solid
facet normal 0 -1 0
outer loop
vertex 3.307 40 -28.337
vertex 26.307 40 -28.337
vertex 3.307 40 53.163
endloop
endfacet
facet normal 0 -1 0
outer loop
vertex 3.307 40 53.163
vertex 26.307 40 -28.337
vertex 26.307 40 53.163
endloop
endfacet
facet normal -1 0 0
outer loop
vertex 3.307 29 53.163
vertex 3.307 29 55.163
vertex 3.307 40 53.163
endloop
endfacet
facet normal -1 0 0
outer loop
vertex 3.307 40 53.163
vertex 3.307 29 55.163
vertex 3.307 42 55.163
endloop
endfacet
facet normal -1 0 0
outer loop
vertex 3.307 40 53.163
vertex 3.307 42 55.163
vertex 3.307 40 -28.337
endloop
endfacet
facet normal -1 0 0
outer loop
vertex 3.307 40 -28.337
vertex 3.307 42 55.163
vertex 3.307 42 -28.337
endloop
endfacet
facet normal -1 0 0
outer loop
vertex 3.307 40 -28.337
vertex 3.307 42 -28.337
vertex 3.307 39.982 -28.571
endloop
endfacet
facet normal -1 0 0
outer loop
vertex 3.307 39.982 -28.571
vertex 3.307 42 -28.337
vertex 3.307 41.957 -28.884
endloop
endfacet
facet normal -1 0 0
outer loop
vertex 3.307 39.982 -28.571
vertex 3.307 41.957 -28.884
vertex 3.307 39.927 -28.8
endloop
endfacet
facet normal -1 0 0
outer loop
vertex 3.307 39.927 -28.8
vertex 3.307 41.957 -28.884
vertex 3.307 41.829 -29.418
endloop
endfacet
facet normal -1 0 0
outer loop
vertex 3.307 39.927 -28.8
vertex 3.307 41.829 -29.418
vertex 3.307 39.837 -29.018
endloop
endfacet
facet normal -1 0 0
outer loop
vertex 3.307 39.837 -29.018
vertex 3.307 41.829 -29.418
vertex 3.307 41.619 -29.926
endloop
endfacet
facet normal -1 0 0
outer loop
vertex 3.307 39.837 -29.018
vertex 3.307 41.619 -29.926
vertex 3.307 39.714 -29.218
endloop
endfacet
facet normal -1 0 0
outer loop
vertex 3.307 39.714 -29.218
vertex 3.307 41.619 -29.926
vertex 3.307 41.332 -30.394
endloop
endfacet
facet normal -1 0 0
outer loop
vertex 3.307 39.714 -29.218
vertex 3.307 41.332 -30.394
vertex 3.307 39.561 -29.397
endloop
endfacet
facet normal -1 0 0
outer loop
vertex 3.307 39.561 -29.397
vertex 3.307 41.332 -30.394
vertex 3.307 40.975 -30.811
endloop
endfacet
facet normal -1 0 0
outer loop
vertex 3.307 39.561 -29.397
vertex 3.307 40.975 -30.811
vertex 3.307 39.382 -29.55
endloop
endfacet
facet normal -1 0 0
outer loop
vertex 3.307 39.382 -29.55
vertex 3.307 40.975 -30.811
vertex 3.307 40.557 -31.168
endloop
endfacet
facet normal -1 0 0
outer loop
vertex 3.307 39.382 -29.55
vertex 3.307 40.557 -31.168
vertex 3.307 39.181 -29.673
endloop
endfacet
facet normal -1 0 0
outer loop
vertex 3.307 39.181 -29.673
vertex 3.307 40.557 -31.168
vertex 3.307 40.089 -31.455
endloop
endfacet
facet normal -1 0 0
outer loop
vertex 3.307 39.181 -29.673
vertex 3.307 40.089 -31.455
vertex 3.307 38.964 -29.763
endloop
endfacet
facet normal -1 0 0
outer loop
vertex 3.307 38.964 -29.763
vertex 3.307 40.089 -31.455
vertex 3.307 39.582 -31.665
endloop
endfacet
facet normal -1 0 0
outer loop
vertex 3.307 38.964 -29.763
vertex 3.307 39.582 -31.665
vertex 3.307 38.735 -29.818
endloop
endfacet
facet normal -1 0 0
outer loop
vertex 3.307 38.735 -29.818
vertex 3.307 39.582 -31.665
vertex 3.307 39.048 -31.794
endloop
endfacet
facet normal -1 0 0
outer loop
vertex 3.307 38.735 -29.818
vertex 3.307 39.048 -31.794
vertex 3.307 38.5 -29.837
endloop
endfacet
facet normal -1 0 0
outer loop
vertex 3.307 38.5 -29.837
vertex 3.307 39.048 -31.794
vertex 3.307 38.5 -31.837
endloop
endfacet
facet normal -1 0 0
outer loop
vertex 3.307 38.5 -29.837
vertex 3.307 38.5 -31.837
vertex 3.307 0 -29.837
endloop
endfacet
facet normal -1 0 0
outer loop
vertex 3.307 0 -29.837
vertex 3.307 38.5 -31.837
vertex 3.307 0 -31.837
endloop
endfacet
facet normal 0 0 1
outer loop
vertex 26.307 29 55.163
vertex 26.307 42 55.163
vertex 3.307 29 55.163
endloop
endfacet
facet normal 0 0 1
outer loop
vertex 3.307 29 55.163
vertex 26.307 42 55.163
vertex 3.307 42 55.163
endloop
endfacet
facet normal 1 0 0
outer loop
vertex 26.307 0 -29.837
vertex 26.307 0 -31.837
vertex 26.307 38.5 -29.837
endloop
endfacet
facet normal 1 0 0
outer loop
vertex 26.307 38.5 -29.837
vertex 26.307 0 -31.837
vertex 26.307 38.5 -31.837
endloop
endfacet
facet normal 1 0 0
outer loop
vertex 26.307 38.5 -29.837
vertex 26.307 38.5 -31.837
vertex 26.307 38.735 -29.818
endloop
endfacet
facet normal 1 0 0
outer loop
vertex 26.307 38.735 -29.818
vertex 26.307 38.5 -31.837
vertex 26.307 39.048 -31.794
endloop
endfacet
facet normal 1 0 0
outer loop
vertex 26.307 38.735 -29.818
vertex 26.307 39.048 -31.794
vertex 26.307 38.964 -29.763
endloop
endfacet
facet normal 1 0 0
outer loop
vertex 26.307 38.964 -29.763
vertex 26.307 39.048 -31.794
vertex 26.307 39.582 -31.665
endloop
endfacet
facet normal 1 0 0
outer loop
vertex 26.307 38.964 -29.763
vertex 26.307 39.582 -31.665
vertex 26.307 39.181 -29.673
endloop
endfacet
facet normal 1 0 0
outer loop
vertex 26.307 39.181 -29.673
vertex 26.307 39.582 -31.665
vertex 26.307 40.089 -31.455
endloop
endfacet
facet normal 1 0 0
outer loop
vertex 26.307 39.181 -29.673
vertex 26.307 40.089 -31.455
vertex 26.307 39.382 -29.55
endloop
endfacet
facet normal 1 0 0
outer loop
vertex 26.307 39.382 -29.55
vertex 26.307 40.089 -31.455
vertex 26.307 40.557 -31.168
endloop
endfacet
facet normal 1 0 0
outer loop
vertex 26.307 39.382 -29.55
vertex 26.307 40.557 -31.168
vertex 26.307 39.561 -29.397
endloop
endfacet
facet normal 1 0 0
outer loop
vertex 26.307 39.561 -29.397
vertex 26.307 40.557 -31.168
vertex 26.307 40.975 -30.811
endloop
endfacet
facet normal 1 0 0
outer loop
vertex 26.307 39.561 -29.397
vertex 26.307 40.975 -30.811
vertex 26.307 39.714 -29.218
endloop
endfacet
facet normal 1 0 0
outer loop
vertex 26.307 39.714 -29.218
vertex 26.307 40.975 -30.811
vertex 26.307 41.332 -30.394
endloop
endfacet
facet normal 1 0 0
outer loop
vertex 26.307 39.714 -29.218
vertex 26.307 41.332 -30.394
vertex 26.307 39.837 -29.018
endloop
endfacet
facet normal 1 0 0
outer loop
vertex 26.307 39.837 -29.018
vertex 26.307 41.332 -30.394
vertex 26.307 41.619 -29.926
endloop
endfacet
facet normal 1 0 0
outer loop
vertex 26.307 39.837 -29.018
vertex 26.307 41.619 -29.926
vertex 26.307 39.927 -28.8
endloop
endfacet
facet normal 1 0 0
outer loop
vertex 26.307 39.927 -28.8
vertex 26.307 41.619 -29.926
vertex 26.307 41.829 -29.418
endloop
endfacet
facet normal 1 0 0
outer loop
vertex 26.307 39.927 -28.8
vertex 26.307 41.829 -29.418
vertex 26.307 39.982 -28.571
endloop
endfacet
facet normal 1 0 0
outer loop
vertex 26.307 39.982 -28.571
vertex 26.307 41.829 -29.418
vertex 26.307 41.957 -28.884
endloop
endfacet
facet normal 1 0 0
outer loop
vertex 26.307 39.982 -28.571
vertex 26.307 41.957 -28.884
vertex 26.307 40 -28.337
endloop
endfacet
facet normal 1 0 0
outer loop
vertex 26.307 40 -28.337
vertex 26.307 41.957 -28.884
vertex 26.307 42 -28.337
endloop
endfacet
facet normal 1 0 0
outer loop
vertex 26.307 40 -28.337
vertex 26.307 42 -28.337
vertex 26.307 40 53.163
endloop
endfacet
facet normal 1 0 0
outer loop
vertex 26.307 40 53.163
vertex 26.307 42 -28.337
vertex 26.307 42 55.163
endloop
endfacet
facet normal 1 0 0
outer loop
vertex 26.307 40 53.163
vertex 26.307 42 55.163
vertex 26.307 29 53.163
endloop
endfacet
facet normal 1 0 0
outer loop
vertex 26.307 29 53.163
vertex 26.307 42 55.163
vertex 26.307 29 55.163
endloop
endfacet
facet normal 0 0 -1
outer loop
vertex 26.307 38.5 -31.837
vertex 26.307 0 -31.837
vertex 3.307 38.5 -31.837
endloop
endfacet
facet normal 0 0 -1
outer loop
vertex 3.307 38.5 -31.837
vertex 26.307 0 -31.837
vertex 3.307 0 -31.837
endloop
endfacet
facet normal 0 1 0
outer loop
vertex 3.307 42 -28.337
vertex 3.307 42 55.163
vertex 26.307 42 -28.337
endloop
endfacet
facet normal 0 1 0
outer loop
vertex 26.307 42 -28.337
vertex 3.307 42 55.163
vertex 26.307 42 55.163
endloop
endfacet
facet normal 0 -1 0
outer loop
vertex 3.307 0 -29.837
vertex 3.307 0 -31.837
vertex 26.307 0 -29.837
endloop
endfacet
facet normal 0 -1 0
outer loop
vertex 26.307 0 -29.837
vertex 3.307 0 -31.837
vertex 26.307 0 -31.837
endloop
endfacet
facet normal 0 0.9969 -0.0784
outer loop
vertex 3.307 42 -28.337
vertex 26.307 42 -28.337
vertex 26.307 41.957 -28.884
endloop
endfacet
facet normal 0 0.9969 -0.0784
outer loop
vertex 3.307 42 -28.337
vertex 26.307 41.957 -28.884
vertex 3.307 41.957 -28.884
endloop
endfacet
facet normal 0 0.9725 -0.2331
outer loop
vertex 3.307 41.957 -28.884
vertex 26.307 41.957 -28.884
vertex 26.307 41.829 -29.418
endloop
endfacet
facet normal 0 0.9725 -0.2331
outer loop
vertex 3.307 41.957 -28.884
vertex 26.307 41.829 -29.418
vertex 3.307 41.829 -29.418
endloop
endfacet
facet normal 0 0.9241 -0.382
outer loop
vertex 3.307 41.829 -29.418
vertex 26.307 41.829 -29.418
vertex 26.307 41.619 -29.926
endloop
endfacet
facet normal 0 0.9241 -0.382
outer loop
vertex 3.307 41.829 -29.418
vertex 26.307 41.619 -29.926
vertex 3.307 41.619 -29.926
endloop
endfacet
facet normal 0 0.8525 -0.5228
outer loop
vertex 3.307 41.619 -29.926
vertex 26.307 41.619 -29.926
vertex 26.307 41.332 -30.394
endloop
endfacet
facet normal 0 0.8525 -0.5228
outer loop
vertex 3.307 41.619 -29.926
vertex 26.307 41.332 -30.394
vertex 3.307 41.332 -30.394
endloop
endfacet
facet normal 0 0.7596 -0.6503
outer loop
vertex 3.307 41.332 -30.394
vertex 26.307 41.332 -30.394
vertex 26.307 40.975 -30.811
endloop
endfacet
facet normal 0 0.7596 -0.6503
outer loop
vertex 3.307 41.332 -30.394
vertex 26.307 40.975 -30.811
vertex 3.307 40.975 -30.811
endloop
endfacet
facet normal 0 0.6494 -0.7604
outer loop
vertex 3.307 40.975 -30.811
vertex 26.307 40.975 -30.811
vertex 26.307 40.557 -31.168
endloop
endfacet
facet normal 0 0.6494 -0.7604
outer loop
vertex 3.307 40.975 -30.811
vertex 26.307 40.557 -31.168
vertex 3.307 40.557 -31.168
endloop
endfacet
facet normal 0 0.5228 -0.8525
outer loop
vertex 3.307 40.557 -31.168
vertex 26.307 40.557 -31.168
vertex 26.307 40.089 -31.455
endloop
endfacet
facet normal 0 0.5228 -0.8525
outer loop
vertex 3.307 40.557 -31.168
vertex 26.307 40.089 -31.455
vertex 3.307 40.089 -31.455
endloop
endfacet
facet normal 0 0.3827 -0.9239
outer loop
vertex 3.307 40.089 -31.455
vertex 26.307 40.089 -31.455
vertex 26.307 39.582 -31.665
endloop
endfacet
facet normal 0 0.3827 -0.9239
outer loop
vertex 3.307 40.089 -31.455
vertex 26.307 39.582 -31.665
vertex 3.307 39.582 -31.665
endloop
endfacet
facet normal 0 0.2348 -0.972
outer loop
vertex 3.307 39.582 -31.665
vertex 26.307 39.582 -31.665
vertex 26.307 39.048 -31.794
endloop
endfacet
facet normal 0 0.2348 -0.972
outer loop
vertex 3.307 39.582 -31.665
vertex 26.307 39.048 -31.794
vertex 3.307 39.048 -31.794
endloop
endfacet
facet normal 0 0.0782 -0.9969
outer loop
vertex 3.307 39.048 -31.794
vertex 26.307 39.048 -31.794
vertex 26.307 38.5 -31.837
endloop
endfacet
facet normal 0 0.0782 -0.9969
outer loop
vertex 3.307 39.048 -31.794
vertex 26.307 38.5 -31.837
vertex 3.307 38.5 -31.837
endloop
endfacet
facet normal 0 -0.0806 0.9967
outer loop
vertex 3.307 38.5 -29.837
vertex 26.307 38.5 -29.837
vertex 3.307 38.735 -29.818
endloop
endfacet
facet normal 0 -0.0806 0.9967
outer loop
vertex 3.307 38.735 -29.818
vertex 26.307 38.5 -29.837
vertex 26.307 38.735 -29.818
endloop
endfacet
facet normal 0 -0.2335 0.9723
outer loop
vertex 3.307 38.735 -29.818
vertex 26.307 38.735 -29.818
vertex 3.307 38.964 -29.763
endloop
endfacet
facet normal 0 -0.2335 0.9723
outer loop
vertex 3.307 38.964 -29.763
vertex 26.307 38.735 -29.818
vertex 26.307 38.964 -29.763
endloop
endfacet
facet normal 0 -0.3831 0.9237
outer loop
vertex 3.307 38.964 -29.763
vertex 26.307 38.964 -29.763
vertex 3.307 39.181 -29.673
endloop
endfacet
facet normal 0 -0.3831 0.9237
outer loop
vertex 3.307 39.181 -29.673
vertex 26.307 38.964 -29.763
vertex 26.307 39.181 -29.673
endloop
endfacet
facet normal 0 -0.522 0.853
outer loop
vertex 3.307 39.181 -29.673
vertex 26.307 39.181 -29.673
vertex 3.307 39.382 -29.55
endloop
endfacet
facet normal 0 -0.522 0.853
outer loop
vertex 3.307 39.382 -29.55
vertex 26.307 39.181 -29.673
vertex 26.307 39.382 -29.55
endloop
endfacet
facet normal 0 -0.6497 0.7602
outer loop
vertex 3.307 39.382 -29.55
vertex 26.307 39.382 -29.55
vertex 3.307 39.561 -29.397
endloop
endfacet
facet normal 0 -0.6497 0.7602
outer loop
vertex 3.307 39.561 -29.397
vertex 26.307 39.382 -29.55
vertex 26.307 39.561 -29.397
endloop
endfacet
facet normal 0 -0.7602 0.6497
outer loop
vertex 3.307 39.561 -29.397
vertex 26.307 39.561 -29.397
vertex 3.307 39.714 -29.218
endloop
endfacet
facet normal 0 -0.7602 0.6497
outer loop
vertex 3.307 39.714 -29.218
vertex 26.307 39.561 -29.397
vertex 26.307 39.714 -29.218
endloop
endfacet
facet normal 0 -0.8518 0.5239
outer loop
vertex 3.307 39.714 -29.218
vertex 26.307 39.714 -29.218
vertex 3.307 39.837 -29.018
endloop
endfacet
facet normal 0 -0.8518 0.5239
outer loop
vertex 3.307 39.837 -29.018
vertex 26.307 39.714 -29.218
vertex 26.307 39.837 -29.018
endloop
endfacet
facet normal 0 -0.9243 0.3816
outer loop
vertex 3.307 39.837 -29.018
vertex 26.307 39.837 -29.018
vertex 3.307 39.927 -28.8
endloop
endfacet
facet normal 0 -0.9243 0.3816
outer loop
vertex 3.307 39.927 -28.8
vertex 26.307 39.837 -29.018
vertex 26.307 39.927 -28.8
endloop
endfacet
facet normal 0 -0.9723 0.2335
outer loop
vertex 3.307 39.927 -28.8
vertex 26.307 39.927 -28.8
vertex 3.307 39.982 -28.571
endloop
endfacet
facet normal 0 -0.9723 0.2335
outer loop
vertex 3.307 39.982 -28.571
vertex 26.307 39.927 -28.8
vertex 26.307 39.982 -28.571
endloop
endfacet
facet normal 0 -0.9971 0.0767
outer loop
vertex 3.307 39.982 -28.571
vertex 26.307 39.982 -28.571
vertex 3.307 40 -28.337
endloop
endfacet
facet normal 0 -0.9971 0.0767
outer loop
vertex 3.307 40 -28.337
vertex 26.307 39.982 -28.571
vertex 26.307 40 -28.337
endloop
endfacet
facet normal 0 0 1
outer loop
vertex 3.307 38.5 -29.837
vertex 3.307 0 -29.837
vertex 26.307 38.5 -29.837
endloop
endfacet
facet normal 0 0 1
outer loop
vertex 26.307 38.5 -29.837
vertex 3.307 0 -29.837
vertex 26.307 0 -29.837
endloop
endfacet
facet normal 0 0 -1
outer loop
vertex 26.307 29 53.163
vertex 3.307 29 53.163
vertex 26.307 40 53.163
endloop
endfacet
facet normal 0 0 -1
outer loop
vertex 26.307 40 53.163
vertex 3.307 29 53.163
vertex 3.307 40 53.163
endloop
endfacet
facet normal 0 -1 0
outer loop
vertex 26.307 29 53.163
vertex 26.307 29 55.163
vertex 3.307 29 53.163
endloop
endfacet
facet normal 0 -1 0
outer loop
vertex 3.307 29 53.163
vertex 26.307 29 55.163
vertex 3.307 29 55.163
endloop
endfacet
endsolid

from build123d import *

# Parameters (mm, degrees)
SKETCH1_W           = 23
SKETCH1_H           = 87
BOSS_EXTRUDE1_DEPTH = 42
FILLET1_R           = 3.5
CUT_EXTRUDE1_DEPTH  = 24
SKETCH3_W           = 2
SKETCH3_H           = 40
CUT_EXTRUDE3_DEPTH  = 24
SKETCH4_W           = 83
SKETCH4_H           = 2
CUT_EXTRUDE5_DEPTH  = 24
SKETCH6_W           = 23
SKETCH6_H           = 2
BOSS_EXTRUDE2_DEPTH = 11


with BuildPart() as part:
    # Sketch1 → Boss-Extrude1 (new body)
    with BuildSketch(Plane(origin=(0, 0, 0), x_dir=(1, 0, 0), z_dir=(0, 1, 0))):
        with Locations((14.807125307, -11.663390663)):
            Rectangle(SKETCH1_W, SKETCH1_H)
    extrude(amount=BOSS_EXTRUDE1_DEPTH)

    # Fillet1
    fillet1_edges = [part.edges().sort_by_distance(p)[0] for p in [
        (14.807125307, 42, -31.836609337),
    ]]
    fillet(fillet1_edges, radius=FILLET1_R)

    # Sketch2 → Cut-Extrude1 (cut, through all)
    with BuildSketch(Plane(origin=(26.307125307, 0, 0), x_dir=(0, 0, -1), z_dir=(1, 0, 0))):
        with BuildLine():
            Line((29.836609337, 2), (29.836609337, 38.5))
            ThreePointArc((29.836609337, 38.5), (29.397269508, 39.560660172), (28.336609337, 40))
            Line((28.336609337, 40), (-53.163390663, 40))
            Line((-53.163390663, 40), (-53.163390663, 2))
            Line((-53.163390663, 2), (29.836609337, 2))
        make_face()
    extrude(amount=-CUT_EXTRUDE1_DEPTH, mode=Mode.SUBTRACT)

    # Sketch3 → Cut-Extrude3 (cut, through all)
    with BuildSketch(Plane(origin=(26.307125307, 0, 0), x_dir=(0, 0, -1), z_dir=(1, 0, 0))):
        with Locations((-54.163390663, 20)):
            Rectangle(SKETCH3_W, SKETCH3_H)
    extrude(amount=-CUT_EXTRUDE3_DEPTH, mode=Mode.SUBTRACT)

    # Sketch4 → Cut-Extrude5 (cut, through all)
    with BuildSketch(Plane(origin=(26.307125307, 0, 0), x_dir=(0, 0, -1), z_dir=(1, 0, 0))):
        with Locations((-11.663390663, 1)):
            Rectangle(SKETCH4_W, SKETCH4_H)
    extrude(amount=-CUT_EXTRUDE5_DEPTH, mode=Mode.SUBTRACT)

    # Sketch6 → Boss-Extrude2 (add)
    with BuildSketch(Plane.XZ.offset(-40)):
        with Locations((14.807125307, 54.163390663)):
            Rectangle(SKETCH6_W, SKETCH6_H)
    extrude(amount=BOSS_EXTRUDE2_DEPTH)


solid = part.part
